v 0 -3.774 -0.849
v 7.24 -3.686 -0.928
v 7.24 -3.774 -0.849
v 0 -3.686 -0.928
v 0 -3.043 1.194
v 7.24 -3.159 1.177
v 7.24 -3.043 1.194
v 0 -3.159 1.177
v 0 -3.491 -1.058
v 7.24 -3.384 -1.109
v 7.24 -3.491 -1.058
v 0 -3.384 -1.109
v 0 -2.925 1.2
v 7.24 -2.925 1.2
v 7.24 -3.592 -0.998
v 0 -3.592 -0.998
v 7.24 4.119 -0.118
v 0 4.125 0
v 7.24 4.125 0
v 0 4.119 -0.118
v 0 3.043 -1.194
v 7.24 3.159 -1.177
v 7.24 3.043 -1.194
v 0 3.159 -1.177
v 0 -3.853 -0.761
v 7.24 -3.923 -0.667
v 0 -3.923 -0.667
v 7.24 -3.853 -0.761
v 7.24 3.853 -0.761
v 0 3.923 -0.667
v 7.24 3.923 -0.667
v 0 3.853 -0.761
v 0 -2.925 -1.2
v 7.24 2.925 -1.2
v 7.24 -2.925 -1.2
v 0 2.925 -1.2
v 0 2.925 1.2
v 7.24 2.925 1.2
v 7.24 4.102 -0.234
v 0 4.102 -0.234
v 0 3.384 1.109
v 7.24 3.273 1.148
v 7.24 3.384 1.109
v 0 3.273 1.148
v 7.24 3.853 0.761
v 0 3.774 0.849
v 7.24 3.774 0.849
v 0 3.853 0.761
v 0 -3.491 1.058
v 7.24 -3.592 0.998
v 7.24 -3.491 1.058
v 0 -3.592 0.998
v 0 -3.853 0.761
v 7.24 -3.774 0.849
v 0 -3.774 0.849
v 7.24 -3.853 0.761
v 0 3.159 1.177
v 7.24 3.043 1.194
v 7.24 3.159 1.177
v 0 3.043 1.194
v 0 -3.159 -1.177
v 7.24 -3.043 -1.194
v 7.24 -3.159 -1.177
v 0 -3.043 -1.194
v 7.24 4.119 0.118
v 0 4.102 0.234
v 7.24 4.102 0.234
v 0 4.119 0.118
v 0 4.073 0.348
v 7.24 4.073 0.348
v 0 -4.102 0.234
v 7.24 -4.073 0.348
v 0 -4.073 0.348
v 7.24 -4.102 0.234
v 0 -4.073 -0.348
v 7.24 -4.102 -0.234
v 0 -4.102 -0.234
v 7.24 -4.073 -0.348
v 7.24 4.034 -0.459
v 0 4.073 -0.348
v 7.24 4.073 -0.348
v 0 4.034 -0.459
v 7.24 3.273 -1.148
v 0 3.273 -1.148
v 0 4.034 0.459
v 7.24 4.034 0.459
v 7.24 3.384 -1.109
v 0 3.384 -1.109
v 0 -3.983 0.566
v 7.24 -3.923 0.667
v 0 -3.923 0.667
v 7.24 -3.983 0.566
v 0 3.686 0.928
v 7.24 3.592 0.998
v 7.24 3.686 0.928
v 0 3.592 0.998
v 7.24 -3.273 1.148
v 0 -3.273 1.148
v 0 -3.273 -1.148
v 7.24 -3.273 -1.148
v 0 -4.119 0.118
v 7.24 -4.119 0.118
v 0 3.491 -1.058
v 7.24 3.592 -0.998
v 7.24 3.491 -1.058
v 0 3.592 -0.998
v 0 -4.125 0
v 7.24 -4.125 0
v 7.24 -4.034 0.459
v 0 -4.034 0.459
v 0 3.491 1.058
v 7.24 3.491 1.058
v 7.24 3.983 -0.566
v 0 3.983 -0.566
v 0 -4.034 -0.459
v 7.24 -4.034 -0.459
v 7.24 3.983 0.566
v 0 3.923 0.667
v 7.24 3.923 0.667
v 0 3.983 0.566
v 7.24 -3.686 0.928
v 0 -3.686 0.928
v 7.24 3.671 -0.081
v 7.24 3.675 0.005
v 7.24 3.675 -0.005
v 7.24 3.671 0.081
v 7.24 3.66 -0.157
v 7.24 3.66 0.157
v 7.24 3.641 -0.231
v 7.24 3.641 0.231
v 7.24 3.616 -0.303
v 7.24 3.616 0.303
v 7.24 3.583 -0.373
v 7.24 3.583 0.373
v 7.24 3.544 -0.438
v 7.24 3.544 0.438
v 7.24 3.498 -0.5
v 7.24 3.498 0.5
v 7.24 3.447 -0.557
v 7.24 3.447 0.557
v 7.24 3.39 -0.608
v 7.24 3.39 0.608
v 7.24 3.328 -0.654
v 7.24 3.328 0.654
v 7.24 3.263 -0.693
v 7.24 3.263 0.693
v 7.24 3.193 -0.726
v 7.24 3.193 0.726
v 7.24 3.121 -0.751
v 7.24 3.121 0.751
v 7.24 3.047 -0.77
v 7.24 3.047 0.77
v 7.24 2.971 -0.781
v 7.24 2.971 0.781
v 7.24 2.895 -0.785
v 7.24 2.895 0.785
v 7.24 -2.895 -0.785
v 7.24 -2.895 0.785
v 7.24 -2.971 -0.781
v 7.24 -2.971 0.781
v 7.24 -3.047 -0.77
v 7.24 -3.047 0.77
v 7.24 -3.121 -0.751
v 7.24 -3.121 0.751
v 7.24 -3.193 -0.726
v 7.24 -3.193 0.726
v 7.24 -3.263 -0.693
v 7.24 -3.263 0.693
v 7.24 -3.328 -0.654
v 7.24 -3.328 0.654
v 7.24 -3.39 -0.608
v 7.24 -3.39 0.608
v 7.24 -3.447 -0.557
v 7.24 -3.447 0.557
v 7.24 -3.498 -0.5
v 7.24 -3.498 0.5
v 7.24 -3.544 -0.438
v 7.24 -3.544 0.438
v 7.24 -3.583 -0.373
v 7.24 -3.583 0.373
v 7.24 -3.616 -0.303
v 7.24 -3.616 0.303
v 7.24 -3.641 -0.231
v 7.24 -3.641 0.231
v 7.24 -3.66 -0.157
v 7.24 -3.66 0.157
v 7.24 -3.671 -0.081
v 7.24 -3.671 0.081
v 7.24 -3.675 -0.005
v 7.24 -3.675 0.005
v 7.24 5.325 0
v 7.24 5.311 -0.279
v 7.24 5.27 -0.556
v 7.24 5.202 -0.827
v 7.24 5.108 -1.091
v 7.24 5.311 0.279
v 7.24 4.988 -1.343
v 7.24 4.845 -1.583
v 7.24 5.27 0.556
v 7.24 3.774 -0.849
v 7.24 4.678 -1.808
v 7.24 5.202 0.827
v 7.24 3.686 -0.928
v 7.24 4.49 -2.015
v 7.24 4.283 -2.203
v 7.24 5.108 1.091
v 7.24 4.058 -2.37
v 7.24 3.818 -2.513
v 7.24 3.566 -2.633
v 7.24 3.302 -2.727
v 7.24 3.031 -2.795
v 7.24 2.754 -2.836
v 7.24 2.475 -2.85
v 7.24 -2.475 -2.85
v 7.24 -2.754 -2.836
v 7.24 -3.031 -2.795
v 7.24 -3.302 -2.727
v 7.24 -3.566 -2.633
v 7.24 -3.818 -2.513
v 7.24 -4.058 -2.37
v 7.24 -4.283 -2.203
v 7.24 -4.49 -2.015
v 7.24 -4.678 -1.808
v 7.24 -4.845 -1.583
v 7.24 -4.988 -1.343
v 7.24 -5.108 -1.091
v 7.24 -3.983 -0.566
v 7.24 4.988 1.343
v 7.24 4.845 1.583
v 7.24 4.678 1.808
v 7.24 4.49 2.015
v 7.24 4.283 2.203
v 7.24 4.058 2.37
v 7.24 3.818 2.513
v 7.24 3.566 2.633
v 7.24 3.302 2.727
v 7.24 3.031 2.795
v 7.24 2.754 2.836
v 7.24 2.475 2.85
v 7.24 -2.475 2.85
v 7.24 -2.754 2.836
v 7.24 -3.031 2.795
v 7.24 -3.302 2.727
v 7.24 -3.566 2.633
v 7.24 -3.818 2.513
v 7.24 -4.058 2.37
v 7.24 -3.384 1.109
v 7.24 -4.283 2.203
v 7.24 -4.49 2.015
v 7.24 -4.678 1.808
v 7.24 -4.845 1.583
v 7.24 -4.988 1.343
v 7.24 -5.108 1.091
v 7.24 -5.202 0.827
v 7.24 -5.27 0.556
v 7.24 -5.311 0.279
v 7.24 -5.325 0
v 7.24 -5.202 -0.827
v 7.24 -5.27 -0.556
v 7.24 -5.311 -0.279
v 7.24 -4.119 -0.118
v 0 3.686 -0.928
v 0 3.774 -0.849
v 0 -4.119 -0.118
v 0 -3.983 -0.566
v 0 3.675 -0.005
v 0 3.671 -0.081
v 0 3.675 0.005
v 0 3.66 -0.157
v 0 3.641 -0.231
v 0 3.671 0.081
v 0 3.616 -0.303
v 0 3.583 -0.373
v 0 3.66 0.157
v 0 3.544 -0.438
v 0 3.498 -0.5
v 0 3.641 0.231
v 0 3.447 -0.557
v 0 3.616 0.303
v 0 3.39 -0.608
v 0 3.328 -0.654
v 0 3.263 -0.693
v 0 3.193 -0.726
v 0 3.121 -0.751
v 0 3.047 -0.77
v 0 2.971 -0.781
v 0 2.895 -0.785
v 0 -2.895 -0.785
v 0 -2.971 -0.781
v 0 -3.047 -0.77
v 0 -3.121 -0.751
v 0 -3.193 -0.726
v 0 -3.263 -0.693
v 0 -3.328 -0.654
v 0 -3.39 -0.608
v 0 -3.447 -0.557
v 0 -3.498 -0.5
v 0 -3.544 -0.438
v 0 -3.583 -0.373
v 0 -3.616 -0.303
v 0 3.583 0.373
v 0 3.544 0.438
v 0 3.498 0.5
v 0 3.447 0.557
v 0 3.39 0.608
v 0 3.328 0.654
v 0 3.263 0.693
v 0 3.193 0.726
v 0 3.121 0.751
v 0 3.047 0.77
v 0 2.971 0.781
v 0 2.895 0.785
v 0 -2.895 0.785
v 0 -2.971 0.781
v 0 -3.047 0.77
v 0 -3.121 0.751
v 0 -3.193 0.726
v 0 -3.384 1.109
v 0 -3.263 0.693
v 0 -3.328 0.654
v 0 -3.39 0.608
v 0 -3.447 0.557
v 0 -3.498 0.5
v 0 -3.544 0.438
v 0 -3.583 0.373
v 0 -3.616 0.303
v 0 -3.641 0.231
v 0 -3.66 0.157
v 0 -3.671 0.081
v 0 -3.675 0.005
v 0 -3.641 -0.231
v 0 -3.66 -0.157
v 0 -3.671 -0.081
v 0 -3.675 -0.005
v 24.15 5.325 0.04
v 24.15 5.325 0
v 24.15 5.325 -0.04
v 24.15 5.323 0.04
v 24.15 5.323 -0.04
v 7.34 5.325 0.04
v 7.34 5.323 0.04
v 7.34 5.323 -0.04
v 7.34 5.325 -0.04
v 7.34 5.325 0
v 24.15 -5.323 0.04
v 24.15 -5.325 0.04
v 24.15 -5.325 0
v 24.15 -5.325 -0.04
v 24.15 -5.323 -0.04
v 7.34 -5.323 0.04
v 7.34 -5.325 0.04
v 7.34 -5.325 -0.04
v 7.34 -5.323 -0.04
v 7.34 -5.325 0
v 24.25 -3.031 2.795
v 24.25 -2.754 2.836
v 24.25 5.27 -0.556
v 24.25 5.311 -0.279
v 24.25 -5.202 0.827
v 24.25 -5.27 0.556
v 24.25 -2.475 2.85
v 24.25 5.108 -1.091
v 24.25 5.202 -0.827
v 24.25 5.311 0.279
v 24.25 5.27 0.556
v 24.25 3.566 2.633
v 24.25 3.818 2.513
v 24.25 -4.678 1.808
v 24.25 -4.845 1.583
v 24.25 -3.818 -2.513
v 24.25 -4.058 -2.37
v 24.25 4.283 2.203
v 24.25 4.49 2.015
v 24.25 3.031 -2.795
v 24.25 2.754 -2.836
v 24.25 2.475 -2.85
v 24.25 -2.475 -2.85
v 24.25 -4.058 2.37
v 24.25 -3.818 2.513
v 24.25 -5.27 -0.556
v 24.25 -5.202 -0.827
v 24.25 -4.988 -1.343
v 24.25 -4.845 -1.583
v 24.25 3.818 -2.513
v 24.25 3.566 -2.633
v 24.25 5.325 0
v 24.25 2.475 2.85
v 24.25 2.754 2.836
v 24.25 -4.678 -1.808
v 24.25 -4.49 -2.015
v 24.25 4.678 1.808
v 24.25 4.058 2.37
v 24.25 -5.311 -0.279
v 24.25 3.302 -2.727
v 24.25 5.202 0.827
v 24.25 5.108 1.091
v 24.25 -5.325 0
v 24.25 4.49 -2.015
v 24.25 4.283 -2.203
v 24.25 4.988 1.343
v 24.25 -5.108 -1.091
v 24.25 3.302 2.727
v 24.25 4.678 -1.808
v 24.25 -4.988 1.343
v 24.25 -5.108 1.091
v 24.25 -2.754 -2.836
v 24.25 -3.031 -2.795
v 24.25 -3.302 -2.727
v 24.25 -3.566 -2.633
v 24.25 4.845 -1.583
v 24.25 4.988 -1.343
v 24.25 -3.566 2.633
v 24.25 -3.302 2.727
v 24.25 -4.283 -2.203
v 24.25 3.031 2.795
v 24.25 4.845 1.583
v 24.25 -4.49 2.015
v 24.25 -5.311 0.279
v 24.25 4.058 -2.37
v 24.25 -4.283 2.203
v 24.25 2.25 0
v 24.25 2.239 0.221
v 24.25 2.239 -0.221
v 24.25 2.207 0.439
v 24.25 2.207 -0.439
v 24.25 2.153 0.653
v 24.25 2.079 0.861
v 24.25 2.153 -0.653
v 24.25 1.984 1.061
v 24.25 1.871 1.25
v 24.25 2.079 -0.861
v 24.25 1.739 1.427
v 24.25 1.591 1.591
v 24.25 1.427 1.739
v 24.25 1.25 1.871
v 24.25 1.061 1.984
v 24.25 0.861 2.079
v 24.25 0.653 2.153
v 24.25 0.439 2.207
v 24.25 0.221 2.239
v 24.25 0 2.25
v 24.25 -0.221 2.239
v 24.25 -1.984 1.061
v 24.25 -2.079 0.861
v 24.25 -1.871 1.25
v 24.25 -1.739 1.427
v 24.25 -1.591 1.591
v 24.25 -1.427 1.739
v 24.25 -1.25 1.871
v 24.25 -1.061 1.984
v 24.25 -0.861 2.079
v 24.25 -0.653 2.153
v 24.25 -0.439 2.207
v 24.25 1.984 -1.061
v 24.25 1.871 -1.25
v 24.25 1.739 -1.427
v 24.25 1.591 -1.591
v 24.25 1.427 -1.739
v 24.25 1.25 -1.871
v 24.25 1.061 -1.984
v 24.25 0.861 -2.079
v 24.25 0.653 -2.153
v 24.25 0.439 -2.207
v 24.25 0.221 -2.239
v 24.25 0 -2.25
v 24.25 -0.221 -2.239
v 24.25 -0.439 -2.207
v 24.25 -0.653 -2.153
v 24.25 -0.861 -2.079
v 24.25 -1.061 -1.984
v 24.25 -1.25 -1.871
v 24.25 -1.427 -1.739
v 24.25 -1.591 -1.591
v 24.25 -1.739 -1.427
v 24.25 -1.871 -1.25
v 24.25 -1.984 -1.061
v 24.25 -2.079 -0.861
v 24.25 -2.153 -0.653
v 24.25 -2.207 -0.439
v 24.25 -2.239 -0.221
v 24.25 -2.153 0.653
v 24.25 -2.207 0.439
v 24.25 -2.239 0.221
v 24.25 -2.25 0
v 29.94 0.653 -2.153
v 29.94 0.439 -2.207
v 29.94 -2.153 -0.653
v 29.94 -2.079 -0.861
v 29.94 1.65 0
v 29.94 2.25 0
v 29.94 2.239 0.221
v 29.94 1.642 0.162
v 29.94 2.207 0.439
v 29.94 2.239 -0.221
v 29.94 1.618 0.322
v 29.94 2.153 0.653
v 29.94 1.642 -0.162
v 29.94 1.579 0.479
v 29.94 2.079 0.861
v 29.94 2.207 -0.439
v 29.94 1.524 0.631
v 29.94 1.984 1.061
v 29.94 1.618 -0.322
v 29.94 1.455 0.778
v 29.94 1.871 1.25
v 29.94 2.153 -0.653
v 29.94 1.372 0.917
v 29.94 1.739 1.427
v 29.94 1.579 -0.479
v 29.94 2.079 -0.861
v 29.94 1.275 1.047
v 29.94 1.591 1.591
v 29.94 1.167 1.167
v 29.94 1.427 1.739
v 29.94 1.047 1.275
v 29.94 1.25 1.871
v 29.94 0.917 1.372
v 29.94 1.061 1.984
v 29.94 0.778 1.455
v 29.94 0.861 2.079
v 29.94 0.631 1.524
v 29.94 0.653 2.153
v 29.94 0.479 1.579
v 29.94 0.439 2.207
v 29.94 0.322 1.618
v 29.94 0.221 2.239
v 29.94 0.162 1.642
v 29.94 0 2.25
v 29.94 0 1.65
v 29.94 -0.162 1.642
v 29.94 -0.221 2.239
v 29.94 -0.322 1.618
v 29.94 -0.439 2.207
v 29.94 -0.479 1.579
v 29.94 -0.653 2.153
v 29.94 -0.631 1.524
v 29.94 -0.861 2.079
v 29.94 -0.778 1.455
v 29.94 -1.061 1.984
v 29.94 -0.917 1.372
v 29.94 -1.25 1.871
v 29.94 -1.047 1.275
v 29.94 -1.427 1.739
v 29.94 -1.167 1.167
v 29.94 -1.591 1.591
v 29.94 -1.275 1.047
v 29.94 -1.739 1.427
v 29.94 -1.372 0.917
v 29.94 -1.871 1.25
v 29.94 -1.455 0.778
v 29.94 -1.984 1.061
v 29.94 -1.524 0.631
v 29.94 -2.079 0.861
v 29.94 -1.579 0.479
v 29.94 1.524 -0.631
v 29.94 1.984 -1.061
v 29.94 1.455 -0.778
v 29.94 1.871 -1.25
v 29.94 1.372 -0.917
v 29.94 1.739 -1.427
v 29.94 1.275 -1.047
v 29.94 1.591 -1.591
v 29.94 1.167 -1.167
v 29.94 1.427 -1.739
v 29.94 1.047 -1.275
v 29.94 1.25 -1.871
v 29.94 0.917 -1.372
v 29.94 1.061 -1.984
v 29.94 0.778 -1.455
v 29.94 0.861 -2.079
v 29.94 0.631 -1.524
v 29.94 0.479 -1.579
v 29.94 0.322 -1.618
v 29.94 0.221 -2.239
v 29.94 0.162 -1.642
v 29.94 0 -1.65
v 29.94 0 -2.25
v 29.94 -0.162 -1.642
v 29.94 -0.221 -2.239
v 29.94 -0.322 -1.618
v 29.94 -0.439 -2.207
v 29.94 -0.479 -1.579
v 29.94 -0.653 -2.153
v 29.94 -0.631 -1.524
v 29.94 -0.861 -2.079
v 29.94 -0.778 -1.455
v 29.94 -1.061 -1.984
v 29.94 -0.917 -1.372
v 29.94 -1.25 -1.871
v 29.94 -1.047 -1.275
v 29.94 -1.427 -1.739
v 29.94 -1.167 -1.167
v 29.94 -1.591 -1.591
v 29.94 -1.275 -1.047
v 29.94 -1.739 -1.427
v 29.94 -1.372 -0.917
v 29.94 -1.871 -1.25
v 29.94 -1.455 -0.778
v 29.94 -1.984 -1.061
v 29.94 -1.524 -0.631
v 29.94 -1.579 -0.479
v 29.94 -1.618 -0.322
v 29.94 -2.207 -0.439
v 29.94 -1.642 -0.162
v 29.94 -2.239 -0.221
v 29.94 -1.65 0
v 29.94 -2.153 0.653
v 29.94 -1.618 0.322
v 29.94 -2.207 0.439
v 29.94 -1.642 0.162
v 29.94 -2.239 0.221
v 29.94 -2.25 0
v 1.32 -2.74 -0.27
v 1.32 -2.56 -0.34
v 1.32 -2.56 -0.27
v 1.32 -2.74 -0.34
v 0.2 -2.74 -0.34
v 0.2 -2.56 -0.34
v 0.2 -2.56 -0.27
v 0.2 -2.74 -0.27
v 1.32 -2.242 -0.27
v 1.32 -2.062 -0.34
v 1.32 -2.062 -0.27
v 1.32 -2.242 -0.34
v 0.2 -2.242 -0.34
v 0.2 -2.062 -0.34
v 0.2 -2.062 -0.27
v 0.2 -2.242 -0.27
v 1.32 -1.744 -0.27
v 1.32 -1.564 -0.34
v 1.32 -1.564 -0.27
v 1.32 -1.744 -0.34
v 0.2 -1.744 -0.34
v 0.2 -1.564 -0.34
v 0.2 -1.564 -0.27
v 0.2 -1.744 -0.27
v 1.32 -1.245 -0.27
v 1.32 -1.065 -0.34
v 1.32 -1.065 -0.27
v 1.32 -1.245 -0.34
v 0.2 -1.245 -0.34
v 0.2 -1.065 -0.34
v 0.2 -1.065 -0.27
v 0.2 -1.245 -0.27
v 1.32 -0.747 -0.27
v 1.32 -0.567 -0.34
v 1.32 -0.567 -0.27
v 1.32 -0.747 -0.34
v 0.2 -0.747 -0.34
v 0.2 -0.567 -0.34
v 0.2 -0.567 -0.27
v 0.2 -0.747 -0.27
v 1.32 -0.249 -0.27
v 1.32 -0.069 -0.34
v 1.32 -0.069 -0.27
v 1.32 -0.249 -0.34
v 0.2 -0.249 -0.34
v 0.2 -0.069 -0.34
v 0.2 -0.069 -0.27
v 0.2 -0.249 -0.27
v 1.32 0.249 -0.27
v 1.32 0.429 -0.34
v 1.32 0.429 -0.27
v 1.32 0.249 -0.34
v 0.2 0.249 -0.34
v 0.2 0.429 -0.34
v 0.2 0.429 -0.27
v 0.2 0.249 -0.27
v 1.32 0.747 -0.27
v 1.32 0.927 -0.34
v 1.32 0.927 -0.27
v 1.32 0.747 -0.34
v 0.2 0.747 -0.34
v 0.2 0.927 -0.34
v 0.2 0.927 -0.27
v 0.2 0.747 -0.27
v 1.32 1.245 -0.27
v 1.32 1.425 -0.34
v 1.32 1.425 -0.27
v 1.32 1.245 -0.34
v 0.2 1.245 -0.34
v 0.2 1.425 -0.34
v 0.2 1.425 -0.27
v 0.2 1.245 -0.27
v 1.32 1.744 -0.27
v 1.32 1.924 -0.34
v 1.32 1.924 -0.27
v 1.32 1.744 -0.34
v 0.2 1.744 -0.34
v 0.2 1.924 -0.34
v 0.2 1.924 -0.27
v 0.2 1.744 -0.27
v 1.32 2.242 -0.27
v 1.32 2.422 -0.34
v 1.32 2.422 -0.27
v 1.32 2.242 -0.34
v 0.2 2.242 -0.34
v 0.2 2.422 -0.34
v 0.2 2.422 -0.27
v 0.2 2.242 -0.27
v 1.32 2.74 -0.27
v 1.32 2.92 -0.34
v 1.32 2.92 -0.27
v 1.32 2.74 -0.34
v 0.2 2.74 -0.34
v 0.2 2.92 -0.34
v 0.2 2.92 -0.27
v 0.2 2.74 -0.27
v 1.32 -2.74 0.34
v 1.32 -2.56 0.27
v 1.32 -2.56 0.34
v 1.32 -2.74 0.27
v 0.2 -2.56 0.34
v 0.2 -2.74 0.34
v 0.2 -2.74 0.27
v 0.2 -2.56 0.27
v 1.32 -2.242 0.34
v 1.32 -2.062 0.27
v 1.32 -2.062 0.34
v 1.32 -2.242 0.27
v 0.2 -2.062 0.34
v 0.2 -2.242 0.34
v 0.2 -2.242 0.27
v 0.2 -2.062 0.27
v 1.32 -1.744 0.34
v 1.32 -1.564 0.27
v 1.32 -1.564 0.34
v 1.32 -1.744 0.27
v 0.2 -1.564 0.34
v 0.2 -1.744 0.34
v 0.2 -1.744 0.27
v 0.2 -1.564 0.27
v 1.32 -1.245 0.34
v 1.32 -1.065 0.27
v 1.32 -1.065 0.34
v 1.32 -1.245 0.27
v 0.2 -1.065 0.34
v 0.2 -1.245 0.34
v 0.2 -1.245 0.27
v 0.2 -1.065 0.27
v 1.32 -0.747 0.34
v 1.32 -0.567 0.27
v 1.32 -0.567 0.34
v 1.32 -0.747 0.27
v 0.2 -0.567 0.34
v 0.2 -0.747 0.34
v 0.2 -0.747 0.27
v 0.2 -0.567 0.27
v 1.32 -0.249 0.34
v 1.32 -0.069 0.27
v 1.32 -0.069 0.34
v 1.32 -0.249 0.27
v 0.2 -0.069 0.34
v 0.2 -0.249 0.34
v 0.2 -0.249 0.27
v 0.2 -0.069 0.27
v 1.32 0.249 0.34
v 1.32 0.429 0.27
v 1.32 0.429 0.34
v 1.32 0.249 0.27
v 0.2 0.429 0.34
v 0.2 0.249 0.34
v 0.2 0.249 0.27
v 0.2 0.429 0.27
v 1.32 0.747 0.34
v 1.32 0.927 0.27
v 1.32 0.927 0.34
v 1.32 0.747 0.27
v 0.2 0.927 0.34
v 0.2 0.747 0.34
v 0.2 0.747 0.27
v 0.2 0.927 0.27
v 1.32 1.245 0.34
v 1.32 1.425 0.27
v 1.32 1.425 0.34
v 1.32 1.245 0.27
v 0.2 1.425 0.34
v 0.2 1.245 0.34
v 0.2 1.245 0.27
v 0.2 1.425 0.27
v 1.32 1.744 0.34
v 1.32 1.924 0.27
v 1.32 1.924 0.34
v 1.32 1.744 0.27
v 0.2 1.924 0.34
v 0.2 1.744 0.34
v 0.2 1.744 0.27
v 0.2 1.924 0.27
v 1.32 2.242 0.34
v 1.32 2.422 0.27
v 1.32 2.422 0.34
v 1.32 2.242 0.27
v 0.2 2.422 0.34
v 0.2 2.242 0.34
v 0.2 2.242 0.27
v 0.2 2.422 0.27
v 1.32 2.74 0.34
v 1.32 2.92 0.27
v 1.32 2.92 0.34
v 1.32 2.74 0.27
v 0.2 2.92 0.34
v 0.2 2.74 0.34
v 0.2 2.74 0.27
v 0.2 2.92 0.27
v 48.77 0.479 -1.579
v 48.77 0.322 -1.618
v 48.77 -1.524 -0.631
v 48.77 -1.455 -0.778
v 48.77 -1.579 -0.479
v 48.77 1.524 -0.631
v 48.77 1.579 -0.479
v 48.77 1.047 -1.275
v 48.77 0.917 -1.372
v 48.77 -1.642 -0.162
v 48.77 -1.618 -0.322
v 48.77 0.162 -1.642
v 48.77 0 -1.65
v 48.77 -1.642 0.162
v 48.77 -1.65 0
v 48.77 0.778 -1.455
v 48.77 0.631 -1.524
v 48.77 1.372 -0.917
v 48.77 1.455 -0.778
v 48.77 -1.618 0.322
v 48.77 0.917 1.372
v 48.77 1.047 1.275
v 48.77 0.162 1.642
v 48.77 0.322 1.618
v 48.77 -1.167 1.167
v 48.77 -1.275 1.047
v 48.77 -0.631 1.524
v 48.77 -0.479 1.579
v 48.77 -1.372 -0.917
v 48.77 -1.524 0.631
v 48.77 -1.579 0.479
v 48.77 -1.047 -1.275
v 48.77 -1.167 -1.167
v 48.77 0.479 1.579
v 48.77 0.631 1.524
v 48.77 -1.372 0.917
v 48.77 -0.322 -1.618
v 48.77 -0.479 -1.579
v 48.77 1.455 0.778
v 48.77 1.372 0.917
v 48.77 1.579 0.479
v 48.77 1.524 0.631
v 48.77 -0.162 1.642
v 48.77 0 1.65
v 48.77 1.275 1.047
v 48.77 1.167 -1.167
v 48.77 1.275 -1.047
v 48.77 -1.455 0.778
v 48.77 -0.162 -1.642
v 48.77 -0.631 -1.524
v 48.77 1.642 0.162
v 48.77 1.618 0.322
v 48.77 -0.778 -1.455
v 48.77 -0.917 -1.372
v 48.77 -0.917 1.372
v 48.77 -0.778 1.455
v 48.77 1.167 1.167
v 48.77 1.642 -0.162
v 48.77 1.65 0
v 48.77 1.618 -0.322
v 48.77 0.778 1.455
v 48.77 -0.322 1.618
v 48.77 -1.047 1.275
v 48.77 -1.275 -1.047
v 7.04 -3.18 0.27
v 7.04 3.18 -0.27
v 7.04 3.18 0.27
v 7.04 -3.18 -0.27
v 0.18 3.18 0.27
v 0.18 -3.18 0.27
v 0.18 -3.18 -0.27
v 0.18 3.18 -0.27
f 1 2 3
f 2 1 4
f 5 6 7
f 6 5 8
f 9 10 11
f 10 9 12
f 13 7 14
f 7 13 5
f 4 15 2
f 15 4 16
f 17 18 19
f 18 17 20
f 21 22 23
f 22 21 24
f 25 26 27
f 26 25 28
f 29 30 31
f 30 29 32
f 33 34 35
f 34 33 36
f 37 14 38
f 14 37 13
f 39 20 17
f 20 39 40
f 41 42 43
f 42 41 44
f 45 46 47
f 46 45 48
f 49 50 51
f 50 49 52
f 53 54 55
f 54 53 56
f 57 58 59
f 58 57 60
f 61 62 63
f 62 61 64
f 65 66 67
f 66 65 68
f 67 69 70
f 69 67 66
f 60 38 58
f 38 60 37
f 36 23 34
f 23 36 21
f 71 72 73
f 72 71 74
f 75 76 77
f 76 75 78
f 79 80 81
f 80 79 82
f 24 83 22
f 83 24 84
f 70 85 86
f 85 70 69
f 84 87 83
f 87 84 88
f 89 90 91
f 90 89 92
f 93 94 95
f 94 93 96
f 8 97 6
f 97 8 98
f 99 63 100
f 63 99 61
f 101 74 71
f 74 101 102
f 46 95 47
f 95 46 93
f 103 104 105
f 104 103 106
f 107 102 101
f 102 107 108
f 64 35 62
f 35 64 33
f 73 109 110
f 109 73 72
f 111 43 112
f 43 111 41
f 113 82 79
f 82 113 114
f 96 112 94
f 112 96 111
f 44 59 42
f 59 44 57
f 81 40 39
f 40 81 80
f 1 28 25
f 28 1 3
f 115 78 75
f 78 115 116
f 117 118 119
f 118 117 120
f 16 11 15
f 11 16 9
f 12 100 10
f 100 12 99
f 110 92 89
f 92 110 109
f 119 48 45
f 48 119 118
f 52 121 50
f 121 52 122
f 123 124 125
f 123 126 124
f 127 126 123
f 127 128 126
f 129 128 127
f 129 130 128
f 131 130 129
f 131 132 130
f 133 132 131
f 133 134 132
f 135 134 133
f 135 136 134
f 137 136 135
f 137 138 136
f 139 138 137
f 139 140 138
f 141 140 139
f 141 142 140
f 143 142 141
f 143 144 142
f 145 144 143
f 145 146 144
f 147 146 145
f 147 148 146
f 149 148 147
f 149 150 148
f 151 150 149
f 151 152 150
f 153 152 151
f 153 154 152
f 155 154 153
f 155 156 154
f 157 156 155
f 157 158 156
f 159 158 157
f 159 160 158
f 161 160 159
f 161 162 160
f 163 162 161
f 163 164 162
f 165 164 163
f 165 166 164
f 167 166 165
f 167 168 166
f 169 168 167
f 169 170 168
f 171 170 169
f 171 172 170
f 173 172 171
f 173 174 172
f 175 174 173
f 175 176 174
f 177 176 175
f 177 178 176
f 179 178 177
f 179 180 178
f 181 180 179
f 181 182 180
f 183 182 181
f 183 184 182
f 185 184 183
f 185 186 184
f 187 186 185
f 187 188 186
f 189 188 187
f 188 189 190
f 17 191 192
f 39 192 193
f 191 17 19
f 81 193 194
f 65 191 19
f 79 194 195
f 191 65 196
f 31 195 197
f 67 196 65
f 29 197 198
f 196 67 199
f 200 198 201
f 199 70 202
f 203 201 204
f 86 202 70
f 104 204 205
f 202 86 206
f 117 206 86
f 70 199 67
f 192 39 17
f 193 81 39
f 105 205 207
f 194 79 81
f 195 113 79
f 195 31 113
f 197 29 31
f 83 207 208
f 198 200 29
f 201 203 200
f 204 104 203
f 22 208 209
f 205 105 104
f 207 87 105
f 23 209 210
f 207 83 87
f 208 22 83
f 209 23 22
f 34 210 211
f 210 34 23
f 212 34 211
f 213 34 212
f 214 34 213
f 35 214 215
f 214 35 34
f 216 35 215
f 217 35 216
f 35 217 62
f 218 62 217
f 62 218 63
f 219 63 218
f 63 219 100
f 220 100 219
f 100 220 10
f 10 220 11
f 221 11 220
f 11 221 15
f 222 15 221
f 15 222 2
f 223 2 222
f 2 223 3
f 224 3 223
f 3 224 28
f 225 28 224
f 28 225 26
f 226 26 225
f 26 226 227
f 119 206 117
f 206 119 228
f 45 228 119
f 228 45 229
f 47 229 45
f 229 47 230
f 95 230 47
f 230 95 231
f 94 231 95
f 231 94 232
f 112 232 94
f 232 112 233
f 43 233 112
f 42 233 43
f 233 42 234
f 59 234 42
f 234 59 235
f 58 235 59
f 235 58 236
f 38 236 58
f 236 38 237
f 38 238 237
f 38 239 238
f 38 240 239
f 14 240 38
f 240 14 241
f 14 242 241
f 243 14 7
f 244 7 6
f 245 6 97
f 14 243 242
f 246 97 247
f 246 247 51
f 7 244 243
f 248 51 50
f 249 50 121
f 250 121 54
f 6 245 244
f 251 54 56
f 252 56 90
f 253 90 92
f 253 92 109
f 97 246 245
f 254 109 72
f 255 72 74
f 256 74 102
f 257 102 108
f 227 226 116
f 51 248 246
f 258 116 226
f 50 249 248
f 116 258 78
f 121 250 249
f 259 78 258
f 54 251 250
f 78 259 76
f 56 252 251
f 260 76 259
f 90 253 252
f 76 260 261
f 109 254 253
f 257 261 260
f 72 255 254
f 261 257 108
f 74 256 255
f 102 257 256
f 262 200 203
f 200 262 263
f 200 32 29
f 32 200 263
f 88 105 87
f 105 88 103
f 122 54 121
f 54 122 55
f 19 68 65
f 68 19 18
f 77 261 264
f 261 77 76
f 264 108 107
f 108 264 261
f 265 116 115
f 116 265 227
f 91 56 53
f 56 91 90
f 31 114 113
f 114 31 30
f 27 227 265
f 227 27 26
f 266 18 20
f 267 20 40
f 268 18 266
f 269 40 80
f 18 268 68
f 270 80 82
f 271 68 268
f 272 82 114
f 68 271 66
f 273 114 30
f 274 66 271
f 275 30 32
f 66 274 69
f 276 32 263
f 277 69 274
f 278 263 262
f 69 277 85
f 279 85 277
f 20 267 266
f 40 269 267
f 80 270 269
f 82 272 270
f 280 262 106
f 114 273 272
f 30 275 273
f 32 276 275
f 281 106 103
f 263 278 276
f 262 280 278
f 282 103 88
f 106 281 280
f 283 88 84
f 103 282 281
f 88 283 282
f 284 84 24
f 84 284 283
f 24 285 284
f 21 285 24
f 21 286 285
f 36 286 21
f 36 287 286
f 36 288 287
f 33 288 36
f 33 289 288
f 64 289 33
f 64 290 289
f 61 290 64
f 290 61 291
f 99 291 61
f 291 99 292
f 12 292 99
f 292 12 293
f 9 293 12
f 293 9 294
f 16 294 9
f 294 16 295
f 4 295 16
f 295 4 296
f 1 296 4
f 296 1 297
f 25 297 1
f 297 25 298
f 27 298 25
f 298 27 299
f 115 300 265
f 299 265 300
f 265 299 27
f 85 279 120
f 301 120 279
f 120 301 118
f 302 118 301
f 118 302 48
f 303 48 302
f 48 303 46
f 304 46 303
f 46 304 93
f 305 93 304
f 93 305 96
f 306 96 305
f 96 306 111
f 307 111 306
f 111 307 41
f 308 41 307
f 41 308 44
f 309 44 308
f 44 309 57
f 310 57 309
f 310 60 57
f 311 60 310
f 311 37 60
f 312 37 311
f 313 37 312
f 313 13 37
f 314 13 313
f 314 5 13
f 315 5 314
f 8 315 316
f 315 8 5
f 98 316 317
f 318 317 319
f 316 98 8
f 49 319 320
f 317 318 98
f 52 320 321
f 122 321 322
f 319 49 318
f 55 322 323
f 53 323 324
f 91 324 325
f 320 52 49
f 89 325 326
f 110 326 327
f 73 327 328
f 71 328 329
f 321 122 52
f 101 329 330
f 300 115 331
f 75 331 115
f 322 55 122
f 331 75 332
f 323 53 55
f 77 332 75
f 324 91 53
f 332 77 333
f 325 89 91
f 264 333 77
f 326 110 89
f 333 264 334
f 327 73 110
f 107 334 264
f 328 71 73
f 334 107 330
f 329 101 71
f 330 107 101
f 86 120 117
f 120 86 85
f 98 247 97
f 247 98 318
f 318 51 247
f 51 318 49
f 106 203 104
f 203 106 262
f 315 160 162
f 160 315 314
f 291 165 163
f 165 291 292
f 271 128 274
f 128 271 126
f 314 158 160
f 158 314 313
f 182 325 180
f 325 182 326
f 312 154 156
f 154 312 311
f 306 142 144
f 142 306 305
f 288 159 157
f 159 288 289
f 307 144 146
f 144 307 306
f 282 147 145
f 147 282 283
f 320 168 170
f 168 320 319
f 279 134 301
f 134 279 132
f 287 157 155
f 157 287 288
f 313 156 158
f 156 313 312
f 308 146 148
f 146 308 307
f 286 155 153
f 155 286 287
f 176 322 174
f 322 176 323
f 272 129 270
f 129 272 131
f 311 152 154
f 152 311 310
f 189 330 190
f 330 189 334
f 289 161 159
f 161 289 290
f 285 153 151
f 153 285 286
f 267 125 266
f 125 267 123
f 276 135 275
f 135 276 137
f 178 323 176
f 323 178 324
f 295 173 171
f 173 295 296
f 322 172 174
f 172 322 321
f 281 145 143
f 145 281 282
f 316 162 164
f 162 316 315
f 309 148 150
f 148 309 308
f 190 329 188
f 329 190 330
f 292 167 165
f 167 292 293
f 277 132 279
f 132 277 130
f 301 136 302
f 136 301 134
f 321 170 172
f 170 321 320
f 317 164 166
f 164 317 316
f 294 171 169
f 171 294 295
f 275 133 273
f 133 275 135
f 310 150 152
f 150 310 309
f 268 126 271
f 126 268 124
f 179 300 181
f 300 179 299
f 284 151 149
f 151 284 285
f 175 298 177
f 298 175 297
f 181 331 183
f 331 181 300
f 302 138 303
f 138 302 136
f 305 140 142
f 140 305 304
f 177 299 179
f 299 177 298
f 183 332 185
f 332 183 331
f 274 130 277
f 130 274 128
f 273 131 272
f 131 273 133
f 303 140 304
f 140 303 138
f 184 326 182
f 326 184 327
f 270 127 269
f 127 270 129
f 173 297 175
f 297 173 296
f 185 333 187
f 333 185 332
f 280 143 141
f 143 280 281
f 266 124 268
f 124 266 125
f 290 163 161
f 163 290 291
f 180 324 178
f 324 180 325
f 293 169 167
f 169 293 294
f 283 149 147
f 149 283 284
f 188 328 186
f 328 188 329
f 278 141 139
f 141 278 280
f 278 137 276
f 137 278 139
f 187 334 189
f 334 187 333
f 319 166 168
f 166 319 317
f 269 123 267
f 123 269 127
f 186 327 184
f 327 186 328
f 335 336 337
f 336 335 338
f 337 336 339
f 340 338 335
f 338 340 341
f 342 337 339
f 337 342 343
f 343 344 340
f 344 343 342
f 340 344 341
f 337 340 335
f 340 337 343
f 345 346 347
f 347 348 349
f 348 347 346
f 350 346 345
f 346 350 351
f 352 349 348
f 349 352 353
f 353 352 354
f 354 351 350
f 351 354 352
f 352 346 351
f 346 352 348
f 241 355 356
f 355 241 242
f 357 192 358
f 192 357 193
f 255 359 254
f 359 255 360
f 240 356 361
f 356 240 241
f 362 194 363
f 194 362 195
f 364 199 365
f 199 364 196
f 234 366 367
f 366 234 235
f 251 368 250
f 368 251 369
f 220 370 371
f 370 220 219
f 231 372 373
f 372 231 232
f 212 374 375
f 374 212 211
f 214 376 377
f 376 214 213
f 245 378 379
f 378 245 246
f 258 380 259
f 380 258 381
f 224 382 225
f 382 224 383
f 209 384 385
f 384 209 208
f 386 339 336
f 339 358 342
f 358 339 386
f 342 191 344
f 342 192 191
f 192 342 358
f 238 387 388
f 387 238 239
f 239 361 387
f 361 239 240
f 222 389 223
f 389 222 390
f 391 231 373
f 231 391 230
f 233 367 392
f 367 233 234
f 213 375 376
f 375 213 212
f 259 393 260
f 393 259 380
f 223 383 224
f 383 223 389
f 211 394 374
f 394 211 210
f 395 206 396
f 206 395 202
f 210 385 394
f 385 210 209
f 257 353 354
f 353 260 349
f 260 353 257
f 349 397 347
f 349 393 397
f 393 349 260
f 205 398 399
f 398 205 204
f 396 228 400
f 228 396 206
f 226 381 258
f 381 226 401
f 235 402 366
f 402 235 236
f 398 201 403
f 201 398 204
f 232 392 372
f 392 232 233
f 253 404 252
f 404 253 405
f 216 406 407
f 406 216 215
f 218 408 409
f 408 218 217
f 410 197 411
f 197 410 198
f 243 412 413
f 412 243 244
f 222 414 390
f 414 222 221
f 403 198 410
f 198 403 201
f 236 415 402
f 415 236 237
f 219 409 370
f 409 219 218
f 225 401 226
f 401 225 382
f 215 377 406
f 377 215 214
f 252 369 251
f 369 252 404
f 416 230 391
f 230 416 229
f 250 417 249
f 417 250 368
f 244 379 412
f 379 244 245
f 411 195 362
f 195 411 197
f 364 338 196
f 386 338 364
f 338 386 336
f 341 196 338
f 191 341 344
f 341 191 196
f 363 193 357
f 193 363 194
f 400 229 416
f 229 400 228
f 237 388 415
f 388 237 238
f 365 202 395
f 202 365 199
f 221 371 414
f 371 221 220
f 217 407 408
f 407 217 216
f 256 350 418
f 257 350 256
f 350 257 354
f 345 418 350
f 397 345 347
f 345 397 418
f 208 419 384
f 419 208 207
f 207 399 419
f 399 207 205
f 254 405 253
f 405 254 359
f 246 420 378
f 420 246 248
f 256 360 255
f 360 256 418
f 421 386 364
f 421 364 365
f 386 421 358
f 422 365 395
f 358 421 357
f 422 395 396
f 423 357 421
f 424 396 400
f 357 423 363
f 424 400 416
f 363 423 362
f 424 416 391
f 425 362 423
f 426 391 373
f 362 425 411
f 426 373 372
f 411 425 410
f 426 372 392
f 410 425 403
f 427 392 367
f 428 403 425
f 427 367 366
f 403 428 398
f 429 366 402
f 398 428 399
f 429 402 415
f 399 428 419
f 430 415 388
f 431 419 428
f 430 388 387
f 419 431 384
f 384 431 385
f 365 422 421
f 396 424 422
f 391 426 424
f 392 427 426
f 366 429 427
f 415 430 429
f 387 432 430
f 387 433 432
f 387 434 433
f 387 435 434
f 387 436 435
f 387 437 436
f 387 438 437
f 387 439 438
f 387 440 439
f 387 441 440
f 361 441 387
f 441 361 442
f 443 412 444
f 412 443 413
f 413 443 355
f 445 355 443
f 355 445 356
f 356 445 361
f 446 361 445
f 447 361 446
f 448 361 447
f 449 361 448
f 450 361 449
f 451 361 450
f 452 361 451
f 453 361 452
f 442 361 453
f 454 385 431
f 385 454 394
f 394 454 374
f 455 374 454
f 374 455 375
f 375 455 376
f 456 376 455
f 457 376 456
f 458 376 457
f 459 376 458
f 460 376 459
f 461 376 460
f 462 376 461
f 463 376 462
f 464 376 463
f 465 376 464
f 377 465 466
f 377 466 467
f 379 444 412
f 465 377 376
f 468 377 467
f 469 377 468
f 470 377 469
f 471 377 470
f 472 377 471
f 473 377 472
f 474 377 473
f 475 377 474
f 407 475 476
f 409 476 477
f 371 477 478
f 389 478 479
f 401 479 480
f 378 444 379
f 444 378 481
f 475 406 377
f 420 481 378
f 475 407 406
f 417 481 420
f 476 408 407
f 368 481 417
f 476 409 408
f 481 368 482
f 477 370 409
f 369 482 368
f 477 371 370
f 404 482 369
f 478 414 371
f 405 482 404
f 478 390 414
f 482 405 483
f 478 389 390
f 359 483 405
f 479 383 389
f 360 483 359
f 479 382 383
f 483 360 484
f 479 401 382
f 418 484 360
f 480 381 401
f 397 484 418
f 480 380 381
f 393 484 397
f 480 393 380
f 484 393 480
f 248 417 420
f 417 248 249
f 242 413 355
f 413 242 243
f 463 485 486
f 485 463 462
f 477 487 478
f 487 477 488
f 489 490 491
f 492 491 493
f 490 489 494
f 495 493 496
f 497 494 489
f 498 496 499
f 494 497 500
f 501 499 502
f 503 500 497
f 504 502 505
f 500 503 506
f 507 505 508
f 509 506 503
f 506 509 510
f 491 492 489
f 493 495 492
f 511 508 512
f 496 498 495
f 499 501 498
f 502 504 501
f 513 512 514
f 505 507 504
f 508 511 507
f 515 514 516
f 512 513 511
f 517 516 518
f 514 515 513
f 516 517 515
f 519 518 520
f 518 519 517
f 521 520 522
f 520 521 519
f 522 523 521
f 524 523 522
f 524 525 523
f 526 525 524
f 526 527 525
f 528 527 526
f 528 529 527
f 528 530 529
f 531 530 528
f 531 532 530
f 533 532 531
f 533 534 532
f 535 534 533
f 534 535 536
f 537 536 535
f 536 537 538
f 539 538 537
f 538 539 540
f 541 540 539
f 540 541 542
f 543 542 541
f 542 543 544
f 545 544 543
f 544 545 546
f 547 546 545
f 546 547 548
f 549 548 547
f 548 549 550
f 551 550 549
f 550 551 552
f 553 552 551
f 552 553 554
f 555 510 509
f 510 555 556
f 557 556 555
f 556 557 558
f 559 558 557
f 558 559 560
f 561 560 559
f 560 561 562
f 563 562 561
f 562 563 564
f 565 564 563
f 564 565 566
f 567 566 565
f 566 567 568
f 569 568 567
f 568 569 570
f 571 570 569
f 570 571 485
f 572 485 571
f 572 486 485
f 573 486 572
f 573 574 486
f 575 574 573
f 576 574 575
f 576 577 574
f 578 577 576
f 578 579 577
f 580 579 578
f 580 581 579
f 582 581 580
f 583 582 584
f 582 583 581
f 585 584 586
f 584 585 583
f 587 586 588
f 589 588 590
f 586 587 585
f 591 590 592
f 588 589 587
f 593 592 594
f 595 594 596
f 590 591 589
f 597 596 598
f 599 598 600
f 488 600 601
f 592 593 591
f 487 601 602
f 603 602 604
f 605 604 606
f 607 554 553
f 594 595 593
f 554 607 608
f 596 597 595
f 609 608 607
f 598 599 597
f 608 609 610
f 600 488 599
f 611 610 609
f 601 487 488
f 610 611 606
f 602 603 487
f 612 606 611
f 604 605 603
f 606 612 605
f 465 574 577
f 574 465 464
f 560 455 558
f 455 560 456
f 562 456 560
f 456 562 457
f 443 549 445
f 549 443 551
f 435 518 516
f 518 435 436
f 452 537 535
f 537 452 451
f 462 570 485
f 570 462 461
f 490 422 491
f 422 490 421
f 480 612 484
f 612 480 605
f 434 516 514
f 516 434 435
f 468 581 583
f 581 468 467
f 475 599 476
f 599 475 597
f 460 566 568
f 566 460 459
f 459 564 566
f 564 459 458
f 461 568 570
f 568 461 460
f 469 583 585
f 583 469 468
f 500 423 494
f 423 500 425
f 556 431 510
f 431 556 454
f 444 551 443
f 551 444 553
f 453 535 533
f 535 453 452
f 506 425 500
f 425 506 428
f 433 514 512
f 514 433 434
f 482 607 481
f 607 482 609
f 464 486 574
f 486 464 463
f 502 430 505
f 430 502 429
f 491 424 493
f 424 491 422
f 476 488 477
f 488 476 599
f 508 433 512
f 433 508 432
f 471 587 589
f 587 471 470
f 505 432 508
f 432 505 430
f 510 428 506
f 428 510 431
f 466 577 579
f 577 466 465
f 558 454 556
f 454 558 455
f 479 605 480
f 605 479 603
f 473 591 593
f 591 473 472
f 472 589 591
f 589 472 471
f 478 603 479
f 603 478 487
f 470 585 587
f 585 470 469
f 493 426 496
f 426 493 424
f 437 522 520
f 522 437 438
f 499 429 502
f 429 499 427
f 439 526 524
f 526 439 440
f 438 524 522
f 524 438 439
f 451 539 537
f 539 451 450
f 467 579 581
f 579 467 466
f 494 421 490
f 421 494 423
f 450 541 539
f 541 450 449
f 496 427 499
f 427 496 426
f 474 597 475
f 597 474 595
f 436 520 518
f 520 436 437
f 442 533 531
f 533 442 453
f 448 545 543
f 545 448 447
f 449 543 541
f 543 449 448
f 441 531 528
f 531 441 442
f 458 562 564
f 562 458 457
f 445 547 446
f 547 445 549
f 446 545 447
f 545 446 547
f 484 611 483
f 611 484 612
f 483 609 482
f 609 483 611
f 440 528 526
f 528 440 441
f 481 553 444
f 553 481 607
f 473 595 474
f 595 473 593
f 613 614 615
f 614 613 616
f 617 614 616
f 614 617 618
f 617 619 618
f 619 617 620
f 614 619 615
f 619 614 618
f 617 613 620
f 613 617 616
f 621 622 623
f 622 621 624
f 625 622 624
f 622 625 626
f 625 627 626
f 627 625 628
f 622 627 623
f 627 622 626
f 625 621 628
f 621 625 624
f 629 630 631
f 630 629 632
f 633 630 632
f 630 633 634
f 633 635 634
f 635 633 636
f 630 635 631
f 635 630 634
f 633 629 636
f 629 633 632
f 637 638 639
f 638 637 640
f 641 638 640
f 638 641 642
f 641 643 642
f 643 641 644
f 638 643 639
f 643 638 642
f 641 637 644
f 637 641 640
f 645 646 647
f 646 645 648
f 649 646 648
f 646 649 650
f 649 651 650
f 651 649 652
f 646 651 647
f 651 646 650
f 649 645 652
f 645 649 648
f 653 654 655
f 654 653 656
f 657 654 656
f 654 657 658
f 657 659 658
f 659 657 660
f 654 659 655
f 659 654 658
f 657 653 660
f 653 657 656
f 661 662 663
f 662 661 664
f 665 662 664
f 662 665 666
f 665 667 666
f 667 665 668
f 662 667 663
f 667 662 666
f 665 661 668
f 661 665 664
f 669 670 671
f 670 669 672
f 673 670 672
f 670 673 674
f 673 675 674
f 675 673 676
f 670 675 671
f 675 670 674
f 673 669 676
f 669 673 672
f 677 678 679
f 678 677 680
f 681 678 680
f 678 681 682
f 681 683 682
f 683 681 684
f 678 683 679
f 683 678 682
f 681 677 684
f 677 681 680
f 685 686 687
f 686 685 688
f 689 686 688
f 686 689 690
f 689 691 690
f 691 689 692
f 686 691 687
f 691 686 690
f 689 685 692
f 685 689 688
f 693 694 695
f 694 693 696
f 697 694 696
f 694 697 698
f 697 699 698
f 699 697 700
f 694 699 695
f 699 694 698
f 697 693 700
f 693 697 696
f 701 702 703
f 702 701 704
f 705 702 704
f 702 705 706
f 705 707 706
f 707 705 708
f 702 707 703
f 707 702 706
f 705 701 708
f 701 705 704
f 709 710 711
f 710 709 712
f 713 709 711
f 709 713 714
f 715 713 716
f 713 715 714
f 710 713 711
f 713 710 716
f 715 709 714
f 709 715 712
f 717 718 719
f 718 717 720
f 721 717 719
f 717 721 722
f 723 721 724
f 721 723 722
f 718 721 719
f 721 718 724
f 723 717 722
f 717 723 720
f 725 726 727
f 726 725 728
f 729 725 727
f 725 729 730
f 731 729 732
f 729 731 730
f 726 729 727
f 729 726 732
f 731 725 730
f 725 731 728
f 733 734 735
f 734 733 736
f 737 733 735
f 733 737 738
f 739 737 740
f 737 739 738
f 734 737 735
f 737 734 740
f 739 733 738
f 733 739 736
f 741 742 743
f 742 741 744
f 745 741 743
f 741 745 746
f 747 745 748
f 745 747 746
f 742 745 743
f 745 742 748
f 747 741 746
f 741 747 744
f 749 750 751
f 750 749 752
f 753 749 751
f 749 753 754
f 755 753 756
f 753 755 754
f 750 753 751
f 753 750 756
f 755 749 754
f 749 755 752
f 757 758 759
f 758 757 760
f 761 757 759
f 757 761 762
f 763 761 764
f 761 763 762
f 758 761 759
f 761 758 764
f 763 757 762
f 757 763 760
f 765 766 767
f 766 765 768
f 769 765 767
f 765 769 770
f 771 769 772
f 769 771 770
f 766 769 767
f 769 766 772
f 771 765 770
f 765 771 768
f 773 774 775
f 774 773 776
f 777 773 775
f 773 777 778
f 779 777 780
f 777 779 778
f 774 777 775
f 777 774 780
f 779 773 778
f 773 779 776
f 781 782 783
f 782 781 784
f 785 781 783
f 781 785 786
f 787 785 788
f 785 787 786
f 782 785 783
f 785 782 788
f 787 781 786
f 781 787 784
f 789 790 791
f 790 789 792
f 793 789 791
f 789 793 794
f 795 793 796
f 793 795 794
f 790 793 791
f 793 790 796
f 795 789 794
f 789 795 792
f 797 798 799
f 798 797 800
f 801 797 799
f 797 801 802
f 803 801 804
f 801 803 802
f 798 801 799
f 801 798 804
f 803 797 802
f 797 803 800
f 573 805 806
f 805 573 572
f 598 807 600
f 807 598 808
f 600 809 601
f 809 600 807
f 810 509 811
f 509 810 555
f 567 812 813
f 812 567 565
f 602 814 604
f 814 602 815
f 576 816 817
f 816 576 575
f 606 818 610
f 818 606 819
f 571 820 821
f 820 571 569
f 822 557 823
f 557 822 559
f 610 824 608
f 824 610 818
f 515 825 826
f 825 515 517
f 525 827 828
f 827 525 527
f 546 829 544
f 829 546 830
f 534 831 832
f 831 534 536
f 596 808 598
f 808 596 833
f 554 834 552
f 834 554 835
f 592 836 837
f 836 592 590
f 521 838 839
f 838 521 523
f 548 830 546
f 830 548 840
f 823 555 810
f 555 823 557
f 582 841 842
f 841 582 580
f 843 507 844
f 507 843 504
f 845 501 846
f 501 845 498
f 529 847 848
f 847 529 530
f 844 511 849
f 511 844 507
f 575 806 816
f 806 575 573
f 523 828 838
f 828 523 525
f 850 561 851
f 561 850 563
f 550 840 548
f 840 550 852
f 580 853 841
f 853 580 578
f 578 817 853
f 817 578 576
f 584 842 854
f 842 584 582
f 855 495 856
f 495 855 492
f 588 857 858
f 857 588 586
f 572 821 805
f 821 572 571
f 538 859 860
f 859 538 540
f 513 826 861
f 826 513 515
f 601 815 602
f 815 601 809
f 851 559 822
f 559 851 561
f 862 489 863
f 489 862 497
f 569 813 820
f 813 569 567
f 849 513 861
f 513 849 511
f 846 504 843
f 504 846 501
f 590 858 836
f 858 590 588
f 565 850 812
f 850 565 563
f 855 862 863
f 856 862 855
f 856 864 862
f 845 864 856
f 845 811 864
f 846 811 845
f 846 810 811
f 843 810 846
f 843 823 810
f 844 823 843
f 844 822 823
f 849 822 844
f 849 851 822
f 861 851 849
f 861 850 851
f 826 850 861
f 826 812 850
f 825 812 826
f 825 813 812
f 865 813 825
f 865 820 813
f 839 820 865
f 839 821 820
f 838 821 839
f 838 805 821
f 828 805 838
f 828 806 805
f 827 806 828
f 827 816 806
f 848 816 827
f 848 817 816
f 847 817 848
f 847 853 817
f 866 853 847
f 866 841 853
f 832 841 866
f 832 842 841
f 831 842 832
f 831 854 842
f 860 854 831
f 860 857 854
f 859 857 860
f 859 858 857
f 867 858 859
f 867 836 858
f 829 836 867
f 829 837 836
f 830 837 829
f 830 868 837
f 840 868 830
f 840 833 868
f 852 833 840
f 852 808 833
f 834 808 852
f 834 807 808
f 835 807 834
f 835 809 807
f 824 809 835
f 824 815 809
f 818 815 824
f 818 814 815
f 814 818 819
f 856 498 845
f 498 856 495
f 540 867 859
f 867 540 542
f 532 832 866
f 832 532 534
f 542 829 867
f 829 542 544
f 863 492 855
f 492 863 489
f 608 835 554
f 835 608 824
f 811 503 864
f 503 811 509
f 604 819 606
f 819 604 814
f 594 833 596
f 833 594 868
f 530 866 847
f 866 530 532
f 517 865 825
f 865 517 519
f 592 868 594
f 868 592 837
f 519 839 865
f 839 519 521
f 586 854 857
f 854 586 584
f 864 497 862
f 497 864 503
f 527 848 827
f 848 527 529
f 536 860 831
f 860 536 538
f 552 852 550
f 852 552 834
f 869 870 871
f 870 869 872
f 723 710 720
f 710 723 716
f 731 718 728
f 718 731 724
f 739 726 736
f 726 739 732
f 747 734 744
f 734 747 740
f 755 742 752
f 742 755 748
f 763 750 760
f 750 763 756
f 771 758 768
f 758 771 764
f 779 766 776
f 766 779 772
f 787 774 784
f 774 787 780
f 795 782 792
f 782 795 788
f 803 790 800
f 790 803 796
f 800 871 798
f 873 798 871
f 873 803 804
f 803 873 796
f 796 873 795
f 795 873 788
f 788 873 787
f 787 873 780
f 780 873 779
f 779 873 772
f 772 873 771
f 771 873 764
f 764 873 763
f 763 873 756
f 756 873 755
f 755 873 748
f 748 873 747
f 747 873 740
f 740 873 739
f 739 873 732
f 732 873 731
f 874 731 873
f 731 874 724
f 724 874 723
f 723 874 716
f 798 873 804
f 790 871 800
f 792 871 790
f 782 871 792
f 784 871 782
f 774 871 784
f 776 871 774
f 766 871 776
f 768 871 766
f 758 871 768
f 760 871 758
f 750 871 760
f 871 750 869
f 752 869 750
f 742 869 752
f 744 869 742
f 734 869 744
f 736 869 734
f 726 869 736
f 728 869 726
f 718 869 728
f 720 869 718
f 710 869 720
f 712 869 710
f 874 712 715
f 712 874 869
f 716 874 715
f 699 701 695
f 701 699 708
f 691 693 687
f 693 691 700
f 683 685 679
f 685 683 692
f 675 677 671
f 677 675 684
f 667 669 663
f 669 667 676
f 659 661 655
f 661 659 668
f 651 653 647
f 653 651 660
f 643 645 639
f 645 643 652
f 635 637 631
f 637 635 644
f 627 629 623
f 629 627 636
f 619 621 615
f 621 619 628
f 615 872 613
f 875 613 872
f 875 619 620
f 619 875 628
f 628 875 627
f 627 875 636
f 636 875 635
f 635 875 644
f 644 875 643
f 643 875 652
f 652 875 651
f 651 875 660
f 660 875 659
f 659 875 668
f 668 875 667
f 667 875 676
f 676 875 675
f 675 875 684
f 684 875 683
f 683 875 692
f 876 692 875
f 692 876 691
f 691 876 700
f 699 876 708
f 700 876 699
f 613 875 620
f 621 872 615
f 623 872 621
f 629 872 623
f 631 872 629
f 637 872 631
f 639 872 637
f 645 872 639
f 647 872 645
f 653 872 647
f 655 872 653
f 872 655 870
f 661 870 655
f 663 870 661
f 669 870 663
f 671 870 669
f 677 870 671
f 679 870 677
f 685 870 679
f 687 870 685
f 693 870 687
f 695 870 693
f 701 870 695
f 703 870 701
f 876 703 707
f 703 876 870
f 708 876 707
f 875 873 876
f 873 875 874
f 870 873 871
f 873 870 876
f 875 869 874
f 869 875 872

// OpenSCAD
// USB Type-C male cable connector reconstructed from the linked GrabCAD STEP
// assembly with its built-in millimetre measurement tools.
// Datum: mating face at X=0; cable exits toward +X on the Y=Z=0 centreline.
// NARYS_MATERIAL: metal=#C7C9CA
// NARYS_MATERIAL: overmould=#242529
// NARYS_MATERIAL: cable=#141519
// NARYS_MATERIAL: tongue=#25262A
// NARYS_MATERIAL: contacts=#D5AA55
$fn = 64;
narys_material = is_undef(narys_material) ? "all" : narys_material;

// Measured key dimensions of the original assembly (millimetres).
overall_length = 48.77;
plug_length = 7.24;
housing_length = 17.01;
housing_width = 10.65;
housing_height = 5.70;
strain_relief_length = 5.69;
strain_relief_diameter = 4.50;
cable_diameter = 3.30;
cable_length = overall_length - plug_length - housing_length - strain_relief_length; // 18.83

// USB Type-C mating envelope, cross-checked in the original viewer.
shell_width = 8.25;
shell_height = 2.40;
shell_radius = 1.20;
inner_width = 7.35;
inner_height = 1.55;
inner_radius = 0.78;

housing_start = plug_length;
relief_start = housing_start + housing_length;
cable_start = relief_start + strain_relief_length;

module rounded_rect_2d(width, height, radius) {
    hull()
        for (y = [-width / 2 + radius, width / 2 - radius])
            for (z = [-height / 2 + radius, height / 2 - radius])
                translate([y, z]) circle(r = radius);
}

module rounded_prism_x(length, width, height, radius) {
    rotate([0, 90, 0])
        linear_extrude(height = length, convexity = 10)
            // The rotation maps the 2D Y axis to world Y and 2D X to world Z.
            rounded_rect_2d(height, width, radius);
}

module cylinder_x(length, diameter) {
    rotate([0, 90, 0]) cylinder(h = length, d = diameter);
}

module usb_c_shell() {
    color("#c7c9ca")
    difference() {
        rounded_prism_x(plug_length, shell_width, shell_height, shell_radius);
        translate([-0.05, 0, 0])
            rounded_prism_x(plug_length + 0.10, inner_width, inner_height, inner_radius);
    }

}

module connector_tongue() {
    // Recognizable but non-functional tongue detail.
    color("#25262a")
        translate([0.18, -3.18, -0.27]) cube([6.86, 6.36, 0.54]);
}

module connector_contacts() {
    color("#d5aa55")
        for (side = [-1, 1])
            for (i = [0 : 11])
                translate([0.20, -2.74 + i * (5.48 / 11), side * 0.30 - 0.04])
                    cube([1.12, 0.18, 0.08]);
}

module housing() {
    // The original cover is a straight 17.01 mm capsule: 4.95 mm flat span
    // with R2.85 mm ends, giving an exact 10.65 x 5.70 mm envelope.
    color("#242529")
        translate([housing_start, 0, 0])
            rounded_prism_x(housing_length, housing_width, housing_height, housing_height / 2);

    // Subtle mould-parting seams visible on the two long sides of the original.
    color("#111216") {
        translate([housing_start + 0.10, housing_width / 2 - 0.035, -0.04])
            cube([housing_length - 0.20, 0.035, 0.08]);
        translate([housing_start + 0.10, -housing_width / 2, -0.04])
            cube([housing_length - 0.20, 0.035, 0.08]);
    }
}

module smooth_strain_relief() {
    // The source uses a smooth cylindrical wire tube, not a ribbed boot.
    color("#1b1c20")
        translate([relief_start, 0, 0])
            cylinder_x(strain_relief_length, strain_relief_diameter);
}

module cable() {
    color("#141519")
        translate([cable_start, 0, 0])
            cylinder_x(cable_length, cable_diameter);
}

union() {
    if (narys_material == "all" || narys_material == "metal") usb_c_shell();
    if (narys_material == "all" || narys_material == "overmould") {
        housing();
        smooth_strain_relief();
    }
    if (narys_material == "all" || narys_material == "cable") cable();
    if (narys_material == "all" || narys_material == "tongue") connector_tongue();
    if (narys_material == "all" || narys_material == "contacts") connector_contacts();
}
